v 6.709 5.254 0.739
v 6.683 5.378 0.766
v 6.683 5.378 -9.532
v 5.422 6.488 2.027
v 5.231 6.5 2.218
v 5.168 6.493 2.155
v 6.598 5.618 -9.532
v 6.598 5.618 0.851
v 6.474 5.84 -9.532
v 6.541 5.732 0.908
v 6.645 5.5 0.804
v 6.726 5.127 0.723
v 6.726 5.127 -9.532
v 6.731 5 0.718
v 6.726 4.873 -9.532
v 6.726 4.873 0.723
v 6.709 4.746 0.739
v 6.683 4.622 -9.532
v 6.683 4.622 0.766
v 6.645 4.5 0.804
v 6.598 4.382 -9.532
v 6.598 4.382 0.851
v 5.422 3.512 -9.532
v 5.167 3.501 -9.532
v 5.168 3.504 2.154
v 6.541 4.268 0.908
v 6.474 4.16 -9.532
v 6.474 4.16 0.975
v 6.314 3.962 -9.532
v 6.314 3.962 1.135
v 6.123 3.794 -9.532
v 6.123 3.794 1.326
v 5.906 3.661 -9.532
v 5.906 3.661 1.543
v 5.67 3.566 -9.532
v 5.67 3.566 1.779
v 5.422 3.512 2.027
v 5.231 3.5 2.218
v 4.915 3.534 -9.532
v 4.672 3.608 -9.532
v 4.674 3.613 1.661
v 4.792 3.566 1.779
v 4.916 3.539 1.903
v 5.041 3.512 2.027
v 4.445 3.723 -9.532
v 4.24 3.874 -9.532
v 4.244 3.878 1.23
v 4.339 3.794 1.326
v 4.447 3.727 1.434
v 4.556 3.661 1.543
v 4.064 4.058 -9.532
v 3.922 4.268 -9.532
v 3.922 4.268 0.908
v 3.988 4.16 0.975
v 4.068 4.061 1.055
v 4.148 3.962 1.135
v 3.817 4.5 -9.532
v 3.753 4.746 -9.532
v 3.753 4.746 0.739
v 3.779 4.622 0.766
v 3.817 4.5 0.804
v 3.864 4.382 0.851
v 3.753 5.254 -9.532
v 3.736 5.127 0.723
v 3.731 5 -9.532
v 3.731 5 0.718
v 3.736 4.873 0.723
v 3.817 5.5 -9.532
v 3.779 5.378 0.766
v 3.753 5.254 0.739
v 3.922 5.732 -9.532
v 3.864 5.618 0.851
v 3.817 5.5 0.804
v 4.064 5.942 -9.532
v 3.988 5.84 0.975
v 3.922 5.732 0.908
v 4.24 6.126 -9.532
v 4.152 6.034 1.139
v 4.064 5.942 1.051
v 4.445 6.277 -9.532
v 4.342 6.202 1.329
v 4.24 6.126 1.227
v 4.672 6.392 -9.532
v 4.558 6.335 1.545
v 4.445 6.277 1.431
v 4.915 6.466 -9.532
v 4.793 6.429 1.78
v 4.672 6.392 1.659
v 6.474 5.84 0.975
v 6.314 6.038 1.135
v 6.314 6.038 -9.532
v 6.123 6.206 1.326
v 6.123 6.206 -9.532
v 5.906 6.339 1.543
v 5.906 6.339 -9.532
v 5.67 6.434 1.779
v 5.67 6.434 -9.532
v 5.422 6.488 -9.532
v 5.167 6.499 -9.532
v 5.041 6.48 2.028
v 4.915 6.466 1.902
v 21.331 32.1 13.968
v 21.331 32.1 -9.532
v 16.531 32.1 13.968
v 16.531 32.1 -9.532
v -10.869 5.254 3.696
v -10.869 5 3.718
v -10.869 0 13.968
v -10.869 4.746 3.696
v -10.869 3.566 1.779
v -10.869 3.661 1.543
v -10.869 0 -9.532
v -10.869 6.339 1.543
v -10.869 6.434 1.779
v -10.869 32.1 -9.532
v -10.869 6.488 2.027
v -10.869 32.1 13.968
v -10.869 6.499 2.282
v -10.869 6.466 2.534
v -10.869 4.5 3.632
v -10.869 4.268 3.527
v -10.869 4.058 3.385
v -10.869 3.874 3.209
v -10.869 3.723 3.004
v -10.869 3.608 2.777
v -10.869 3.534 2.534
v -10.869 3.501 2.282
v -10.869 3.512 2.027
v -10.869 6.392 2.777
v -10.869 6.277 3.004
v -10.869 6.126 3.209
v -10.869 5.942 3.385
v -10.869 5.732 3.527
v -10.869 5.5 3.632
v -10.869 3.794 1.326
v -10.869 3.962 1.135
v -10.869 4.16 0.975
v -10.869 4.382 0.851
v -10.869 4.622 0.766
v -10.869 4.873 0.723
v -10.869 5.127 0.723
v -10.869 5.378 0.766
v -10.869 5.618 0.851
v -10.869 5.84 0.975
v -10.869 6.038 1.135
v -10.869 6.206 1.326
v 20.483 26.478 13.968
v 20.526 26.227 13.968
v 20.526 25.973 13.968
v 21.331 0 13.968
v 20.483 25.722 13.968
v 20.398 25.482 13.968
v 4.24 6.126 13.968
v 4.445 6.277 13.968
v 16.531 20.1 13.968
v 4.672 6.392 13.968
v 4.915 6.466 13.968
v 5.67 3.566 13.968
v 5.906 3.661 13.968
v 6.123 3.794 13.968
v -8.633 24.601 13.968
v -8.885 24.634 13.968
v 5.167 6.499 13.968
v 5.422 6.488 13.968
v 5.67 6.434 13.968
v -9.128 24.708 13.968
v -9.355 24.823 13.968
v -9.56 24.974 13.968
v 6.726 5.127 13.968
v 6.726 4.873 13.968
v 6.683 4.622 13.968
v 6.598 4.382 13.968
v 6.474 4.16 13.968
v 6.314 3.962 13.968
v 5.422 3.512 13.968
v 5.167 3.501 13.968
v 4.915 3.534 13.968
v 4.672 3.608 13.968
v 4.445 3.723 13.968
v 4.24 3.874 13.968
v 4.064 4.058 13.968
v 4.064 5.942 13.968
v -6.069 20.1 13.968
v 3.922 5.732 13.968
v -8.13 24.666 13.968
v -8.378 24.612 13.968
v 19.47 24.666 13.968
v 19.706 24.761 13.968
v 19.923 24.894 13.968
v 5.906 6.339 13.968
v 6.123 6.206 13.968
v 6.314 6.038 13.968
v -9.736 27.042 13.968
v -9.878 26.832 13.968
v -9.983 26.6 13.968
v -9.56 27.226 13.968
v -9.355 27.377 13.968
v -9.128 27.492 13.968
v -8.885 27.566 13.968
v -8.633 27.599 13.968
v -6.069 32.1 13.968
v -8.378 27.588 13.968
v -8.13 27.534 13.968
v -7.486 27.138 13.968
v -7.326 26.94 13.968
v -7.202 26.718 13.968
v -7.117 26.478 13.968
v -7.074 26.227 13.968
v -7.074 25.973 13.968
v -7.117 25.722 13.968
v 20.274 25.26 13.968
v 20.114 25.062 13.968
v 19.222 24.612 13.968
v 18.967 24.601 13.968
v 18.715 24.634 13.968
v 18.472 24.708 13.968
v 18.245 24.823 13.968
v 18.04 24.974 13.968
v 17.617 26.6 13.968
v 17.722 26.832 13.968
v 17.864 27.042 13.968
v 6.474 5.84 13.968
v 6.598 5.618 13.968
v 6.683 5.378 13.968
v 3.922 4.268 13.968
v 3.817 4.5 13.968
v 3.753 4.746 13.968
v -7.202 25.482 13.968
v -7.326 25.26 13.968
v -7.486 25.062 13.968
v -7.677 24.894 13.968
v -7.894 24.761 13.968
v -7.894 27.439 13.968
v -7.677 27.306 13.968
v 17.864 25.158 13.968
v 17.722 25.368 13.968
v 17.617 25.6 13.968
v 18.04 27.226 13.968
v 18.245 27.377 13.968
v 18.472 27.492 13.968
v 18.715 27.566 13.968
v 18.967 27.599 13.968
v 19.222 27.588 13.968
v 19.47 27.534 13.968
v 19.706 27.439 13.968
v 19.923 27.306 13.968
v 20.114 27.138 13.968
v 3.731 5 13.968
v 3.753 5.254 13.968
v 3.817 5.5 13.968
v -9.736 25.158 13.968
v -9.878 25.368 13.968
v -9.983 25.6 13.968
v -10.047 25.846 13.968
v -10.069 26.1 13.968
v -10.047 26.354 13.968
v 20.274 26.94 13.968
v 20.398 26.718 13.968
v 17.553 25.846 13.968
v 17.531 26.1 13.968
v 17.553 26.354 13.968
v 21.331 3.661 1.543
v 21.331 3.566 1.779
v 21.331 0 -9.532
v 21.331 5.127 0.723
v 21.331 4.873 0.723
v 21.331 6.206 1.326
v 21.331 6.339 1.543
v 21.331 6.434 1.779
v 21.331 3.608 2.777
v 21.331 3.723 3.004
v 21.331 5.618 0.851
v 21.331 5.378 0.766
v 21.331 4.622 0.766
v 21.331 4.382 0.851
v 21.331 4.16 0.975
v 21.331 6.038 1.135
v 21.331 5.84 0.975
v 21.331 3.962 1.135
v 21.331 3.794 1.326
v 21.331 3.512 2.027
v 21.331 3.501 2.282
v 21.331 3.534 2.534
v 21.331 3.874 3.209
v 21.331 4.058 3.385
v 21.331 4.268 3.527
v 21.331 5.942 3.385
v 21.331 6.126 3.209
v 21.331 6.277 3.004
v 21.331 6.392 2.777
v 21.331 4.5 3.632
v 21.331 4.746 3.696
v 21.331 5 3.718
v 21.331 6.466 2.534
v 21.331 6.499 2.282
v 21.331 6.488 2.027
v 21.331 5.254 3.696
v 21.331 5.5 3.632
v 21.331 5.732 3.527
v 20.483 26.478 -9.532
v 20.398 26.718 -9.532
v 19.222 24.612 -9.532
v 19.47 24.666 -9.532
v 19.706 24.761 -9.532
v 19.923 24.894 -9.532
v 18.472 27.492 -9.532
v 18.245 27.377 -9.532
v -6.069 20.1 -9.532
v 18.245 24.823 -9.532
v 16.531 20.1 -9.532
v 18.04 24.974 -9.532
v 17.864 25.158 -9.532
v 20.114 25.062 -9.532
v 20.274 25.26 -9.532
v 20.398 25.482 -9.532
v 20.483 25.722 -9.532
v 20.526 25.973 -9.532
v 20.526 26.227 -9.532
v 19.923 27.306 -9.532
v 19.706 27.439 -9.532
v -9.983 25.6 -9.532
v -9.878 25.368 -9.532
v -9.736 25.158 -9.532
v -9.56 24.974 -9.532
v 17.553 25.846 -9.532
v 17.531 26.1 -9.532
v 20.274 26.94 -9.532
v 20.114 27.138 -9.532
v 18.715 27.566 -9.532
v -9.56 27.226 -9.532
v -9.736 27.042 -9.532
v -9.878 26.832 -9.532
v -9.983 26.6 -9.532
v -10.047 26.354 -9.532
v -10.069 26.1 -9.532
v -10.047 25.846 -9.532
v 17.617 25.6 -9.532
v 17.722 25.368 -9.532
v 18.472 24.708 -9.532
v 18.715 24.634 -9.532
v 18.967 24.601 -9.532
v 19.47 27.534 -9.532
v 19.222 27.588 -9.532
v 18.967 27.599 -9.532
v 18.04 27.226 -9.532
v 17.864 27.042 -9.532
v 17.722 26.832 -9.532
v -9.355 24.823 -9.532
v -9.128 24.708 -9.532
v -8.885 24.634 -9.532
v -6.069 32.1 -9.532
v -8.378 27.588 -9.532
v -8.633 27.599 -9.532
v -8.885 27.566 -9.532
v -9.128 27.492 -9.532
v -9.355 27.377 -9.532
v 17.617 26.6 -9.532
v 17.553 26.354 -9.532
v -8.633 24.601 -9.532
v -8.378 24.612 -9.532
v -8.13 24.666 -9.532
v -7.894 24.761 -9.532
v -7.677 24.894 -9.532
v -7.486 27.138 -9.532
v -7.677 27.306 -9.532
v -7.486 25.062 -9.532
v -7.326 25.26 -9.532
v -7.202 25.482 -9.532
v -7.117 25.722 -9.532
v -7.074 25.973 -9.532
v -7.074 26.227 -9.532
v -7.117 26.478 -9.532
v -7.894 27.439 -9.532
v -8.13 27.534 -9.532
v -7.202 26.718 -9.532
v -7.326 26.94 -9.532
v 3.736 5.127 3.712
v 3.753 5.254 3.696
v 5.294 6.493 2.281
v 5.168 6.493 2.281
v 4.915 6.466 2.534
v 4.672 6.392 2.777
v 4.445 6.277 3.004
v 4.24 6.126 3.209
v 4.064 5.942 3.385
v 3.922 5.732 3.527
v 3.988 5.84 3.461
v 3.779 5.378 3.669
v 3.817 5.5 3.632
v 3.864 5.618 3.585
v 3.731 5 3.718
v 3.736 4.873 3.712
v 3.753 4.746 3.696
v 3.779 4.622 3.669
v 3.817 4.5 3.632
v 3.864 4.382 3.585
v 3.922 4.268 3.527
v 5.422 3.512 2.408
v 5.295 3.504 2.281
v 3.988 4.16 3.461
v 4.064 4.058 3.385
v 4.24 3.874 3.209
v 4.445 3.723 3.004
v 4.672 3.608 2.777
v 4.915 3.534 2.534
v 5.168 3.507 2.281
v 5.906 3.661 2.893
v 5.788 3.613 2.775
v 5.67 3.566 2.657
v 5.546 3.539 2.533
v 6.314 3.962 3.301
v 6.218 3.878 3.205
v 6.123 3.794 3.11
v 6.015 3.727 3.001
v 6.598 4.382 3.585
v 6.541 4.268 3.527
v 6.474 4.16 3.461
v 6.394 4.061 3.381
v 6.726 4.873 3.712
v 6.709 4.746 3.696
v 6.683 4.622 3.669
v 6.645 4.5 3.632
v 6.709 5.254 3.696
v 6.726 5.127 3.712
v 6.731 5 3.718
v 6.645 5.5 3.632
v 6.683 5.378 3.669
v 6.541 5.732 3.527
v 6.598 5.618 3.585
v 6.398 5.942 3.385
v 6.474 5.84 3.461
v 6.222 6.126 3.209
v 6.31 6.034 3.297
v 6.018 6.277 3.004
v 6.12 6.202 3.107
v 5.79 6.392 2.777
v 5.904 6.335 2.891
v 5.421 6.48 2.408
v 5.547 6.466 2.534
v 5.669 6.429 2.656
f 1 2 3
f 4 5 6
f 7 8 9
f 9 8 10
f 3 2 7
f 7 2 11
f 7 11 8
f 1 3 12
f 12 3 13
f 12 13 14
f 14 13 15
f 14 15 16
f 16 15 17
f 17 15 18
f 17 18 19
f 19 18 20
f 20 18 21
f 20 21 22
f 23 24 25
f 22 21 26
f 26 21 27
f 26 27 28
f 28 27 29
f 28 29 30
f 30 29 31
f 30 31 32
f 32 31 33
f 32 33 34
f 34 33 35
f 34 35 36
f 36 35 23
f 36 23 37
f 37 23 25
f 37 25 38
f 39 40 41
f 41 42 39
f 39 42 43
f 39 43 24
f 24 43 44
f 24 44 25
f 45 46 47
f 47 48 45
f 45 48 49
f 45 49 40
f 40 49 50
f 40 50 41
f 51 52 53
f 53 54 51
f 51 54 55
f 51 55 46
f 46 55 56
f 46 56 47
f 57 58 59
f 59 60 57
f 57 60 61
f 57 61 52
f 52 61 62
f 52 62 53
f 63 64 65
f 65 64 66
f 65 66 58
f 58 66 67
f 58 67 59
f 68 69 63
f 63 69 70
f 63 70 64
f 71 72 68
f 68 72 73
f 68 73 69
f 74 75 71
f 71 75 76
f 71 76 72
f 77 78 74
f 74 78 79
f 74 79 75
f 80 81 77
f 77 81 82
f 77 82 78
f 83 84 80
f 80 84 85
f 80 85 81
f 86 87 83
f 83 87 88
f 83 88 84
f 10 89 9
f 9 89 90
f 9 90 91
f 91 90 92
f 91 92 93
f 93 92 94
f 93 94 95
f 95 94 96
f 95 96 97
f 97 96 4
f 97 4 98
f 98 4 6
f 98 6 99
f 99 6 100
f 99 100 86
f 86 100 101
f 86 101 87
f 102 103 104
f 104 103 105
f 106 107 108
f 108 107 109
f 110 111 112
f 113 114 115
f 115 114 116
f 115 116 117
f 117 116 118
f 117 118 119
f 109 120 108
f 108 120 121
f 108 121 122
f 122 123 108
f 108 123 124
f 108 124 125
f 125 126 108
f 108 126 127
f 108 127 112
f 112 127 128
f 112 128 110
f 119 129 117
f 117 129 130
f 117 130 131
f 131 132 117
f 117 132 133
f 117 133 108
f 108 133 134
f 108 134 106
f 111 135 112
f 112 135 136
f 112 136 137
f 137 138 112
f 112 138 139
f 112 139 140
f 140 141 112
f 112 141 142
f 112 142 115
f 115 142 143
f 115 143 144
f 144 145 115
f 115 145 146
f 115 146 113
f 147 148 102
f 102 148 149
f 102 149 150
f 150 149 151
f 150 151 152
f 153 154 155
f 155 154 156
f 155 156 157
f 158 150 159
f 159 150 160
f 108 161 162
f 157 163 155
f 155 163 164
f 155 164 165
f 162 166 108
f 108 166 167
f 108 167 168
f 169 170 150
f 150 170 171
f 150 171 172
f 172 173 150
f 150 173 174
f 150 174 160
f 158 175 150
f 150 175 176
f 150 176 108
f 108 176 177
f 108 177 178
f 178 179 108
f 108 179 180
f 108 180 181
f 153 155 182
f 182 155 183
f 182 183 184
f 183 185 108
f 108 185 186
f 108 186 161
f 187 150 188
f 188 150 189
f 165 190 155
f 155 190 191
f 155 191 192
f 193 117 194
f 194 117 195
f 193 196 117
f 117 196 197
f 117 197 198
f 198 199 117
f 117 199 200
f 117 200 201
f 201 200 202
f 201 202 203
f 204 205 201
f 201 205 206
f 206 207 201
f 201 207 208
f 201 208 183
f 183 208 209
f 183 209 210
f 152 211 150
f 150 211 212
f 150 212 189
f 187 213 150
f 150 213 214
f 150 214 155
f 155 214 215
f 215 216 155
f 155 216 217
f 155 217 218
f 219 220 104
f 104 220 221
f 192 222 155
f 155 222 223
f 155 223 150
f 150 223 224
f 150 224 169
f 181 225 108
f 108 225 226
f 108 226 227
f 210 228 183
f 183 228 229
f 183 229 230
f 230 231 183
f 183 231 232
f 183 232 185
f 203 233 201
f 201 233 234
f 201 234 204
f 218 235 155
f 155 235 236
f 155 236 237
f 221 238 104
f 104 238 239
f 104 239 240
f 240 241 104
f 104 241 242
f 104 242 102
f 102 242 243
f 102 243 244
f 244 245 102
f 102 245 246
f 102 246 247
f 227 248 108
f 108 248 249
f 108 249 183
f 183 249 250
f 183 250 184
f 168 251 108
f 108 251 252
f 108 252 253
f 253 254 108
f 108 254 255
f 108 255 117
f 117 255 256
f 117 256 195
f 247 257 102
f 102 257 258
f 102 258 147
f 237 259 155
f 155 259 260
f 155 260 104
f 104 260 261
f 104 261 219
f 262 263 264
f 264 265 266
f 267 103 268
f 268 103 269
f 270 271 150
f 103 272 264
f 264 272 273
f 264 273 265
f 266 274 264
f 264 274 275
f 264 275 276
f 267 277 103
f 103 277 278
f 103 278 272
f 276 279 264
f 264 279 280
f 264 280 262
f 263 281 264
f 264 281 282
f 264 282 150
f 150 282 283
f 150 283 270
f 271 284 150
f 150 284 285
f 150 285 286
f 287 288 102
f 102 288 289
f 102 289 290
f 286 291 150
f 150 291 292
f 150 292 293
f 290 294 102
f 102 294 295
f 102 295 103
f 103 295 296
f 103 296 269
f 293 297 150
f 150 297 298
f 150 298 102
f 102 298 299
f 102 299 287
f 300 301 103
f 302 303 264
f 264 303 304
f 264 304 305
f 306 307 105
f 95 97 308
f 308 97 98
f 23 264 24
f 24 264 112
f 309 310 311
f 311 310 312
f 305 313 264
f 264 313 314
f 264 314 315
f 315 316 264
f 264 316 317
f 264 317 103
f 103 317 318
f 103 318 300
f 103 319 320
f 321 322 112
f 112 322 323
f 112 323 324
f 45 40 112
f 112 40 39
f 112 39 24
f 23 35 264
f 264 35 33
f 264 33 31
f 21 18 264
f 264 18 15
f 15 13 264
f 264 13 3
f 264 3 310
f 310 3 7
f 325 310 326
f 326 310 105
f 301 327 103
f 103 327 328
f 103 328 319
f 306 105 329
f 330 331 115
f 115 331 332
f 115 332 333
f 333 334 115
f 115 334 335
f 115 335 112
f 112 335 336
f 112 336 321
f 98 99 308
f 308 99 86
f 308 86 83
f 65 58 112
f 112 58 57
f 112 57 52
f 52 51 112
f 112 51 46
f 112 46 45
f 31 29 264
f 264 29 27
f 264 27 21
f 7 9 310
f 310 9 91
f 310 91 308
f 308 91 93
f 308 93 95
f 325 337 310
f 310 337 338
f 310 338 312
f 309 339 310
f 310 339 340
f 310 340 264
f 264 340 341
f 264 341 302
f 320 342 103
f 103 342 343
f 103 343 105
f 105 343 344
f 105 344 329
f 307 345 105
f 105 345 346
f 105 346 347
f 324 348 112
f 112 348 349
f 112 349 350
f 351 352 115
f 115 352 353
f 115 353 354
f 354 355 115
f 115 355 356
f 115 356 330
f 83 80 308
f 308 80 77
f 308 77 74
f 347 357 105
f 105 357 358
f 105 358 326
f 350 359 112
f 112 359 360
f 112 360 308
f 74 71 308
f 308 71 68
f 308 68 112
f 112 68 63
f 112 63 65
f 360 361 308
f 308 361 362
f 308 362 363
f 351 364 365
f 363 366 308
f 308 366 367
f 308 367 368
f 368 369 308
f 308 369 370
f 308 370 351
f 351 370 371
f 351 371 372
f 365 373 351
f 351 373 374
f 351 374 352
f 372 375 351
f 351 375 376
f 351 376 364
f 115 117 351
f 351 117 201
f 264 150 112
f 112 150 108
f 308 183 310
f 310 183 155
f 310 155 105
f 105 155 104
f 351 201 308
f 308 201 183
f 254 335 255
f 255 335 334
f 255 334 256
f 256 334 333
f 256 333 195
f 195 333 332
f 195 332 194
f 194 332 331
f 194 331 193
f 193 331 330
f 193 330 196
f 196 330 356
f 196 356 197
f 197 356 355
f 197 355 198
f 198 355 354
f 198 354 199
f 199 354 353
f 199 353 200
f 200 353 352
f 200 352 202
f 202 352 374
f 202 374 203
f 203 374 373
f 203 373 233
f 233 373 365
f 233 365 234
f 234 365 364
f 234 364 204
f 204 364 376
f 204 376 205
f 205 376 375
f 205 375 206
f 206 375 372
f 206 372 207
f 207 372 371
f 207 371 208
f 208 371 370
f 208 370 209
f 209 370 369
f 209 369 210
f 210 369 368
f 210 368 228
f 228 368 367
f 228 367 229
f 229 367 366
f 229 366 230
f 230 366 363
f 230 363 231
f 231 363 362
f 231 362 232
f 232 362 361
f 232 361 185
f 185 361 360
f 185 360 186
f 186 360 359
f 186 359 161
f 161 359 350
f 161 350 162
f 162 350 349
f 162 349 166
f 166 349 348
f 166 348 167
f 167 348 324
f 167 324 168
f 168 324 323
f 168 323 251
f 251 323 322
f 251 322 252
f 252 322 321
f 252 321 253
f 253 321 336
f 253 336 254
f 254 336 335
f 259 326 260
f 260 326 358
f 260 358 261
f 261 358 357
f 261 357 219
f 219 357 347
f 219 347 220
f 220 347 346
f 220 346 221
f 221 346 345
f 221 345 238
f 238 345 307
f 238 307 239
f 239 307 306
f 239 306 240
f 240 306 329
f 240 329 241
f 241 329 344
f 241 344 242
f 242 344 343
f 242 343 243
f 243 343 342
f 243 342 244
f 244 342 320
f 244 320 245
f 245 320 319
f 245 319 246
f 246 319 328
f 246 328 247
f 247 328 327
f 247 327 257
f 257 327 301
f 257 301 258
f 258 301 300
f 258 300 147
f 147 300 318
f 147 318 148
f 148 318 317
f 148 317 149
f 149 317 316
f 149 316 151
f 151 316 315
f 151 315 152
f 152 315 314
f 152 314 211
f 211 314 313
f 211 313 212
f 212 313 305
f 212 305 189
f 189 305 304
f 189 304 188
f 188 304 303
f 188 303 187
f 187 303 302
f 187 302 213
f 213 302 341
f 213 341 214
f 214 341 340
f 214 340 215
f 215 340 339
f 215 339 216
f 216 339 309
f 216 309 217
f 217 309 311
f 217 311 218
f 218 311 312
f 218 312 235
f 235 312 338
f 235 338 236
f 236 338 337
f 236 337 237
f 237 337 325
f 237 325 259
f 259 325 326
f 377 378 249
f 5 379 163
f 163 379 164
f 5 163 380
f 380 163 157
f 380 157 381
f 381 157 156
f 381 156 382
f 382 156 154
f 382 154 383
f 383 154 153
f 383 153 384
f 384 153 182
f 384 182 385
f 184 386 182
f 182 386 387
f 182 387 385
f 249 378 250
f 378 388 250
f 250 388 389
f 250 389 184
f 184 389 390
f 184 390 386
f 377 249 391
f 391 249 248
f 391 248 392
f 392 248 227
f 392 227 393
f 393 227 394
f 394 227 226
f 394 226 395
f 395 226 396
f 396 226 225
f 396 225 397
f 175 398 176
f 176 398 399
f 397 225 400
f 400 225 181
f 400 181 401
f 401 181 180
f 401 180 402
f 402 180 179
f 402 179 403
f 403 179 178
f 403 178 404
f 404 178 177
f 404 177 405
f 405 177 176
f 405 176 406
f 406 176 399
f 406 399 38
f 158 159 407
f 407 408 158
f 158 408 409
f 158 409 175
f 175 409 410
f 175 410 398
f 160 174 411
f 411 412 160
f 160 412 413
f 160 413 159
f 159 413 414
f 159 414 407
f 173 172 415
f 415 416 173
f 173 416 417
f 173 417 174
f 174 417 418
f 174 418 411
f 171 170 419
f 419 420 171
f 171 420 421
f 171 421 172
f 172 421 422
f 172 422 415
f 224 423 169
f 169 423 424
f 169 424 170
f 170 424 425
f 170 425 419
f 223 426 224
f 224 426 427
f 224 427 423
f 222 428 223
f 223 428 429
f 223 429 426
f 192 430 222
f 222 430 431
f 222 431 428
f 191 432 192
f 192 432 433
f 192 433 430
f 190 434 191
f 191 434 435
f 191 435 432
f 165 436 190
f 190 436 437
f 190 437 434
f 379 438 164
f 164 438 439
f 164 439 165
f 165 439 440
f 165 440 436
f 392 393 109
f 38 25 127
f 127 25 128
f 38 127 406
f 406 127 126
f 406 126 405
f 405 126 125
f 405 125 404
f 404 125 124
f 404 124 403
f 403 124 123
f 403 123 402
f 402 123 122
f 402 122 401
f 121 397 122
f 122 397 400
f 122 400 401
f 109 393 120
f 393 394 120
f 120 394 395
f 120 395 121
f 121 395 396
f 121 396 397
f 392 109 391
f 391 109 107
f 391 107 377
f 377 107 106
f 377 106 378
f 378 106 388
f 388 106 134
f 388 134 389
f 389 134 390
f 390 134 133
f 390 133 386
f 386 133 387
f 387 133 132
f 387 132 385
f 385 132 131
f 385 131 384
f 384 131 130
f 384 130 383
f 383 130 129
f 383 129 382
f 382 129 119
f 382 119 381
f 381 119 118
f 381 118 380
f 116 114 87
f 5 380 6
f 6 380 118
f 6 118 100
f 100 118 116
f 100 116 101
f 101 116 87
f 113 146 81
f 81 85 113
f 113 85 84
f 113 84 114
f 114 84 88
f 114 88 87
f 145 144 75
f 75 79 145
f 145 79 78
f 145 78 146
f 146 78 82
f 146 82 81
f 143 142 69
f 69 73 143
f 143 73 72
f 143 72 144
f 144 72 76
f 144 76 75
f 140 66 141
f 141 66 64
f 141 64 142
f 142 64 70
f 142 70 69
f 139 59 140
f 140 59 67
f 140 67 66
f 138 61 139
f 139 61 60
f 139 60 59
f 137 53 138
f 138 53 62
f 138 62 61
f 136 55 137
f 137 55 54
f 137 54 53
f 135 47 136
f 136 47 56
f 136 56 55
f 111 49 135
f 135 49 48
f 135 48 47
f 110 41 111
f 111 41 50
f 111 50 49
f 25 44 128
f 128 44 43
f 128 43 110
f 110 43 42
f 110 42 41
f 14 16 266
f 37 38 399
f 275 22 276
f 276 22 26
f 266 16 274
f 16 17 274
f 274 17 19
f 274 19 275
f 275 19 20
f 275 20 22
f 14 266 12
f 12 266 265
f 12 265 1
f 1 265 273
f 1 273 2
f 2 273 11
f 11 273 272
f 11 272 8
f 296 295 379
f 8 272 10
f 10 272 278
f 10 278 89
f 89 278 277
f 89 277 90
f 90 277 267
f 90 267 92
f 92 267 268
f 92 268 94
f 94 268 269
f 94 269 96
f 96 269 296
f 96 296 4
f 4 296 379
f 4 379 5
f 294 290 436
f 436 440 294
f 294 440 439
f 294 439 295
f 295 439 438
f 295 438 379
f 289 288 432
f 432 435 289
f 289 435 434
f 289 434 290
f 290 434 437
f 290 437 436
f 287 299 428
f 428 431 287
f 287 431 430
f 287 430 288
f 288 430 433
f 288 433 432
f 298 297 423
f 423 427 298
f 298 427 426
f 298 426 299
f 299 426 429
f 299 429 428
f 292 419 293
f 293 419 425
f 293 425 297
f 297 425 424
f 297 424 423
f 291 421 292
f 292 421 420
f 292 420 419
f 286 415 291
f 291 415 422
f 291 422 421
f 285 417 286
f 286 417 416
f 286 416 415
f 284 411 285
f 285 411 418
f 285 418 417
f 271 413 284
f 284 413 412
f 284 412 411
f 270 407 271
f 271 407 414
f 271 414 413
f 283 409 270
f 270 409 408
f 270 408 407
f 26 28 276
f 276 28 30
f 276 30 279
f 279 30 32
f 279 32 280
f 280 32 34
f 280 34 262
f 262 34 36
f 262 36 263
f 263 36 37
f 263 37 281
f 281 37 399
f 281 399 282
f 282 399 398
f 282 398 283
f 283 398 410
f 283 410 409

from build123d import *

# Parameters (mm, degrees)
SKETCH1_W           = 32.2
SKETCH1_H           = 23.5
BOSS_EXTRUDE1_DEPTH = 32.1
SKETCH2_R           = 1.5
SKETCH2_W           = 22.6
SKETCH2_H           = 12
CUT_EXTRUDE1_DEPTH  = 32.1
SKETCH3_R           = 1.5
CUT_EXTRUDE2_DEPTH  = 36.1


with BuildPart() as part:
    # Sketch1 → Boss-Extrude1 (new body)
    with BuildSketch(Plane(origin=(0, 0, 0), x_dir=(1, 0, 0), z_dir=(0, 1, 0))):
        with Locations((5.231046931, -2.217870036)):
            Rectangle(SKETCH1_W, SKETCH1_H)
    extrude(amount=BOSS_EXTRUDE1_DEPTH)

    # Sketch2 → Cut-Extrude1 (cut)
    with BuildSketch(Plane(origin=(0, 0, -9.532129964), x_dir=(-1, 0, 0), z_dir=(0, 0, -1))):
        with Locations((8.568953069, 26.1)):
            Circle(SKETCH2_R)
        with Locations((-19.031046931, 26.1)):
            Circle(SKETCH2_R)
        with Locations((-5.231046931, 5)):
            Circle(SKETCH2_R)
        with Locations((-5.231046931, 26.1)):
            Rectangle(SKETCH2_W, SKETCH2_H)
    extrude(amount=-CUT_EXTRUDE1_DEPTH, mode=Mode.SUBTRACT)

    # Sketch3 → Cut-Extrude2 (cut)
    with BuildSketch(Plane.ZY.offset(10.868953069)):
        with Locations((2.217870036, 5)):
            Circle(SKETCH3_R)
    extrude(amount=-CUT_EXTRUDE2_DEPTH, mode=Mode.SUBTRACT)


solid = part.part
